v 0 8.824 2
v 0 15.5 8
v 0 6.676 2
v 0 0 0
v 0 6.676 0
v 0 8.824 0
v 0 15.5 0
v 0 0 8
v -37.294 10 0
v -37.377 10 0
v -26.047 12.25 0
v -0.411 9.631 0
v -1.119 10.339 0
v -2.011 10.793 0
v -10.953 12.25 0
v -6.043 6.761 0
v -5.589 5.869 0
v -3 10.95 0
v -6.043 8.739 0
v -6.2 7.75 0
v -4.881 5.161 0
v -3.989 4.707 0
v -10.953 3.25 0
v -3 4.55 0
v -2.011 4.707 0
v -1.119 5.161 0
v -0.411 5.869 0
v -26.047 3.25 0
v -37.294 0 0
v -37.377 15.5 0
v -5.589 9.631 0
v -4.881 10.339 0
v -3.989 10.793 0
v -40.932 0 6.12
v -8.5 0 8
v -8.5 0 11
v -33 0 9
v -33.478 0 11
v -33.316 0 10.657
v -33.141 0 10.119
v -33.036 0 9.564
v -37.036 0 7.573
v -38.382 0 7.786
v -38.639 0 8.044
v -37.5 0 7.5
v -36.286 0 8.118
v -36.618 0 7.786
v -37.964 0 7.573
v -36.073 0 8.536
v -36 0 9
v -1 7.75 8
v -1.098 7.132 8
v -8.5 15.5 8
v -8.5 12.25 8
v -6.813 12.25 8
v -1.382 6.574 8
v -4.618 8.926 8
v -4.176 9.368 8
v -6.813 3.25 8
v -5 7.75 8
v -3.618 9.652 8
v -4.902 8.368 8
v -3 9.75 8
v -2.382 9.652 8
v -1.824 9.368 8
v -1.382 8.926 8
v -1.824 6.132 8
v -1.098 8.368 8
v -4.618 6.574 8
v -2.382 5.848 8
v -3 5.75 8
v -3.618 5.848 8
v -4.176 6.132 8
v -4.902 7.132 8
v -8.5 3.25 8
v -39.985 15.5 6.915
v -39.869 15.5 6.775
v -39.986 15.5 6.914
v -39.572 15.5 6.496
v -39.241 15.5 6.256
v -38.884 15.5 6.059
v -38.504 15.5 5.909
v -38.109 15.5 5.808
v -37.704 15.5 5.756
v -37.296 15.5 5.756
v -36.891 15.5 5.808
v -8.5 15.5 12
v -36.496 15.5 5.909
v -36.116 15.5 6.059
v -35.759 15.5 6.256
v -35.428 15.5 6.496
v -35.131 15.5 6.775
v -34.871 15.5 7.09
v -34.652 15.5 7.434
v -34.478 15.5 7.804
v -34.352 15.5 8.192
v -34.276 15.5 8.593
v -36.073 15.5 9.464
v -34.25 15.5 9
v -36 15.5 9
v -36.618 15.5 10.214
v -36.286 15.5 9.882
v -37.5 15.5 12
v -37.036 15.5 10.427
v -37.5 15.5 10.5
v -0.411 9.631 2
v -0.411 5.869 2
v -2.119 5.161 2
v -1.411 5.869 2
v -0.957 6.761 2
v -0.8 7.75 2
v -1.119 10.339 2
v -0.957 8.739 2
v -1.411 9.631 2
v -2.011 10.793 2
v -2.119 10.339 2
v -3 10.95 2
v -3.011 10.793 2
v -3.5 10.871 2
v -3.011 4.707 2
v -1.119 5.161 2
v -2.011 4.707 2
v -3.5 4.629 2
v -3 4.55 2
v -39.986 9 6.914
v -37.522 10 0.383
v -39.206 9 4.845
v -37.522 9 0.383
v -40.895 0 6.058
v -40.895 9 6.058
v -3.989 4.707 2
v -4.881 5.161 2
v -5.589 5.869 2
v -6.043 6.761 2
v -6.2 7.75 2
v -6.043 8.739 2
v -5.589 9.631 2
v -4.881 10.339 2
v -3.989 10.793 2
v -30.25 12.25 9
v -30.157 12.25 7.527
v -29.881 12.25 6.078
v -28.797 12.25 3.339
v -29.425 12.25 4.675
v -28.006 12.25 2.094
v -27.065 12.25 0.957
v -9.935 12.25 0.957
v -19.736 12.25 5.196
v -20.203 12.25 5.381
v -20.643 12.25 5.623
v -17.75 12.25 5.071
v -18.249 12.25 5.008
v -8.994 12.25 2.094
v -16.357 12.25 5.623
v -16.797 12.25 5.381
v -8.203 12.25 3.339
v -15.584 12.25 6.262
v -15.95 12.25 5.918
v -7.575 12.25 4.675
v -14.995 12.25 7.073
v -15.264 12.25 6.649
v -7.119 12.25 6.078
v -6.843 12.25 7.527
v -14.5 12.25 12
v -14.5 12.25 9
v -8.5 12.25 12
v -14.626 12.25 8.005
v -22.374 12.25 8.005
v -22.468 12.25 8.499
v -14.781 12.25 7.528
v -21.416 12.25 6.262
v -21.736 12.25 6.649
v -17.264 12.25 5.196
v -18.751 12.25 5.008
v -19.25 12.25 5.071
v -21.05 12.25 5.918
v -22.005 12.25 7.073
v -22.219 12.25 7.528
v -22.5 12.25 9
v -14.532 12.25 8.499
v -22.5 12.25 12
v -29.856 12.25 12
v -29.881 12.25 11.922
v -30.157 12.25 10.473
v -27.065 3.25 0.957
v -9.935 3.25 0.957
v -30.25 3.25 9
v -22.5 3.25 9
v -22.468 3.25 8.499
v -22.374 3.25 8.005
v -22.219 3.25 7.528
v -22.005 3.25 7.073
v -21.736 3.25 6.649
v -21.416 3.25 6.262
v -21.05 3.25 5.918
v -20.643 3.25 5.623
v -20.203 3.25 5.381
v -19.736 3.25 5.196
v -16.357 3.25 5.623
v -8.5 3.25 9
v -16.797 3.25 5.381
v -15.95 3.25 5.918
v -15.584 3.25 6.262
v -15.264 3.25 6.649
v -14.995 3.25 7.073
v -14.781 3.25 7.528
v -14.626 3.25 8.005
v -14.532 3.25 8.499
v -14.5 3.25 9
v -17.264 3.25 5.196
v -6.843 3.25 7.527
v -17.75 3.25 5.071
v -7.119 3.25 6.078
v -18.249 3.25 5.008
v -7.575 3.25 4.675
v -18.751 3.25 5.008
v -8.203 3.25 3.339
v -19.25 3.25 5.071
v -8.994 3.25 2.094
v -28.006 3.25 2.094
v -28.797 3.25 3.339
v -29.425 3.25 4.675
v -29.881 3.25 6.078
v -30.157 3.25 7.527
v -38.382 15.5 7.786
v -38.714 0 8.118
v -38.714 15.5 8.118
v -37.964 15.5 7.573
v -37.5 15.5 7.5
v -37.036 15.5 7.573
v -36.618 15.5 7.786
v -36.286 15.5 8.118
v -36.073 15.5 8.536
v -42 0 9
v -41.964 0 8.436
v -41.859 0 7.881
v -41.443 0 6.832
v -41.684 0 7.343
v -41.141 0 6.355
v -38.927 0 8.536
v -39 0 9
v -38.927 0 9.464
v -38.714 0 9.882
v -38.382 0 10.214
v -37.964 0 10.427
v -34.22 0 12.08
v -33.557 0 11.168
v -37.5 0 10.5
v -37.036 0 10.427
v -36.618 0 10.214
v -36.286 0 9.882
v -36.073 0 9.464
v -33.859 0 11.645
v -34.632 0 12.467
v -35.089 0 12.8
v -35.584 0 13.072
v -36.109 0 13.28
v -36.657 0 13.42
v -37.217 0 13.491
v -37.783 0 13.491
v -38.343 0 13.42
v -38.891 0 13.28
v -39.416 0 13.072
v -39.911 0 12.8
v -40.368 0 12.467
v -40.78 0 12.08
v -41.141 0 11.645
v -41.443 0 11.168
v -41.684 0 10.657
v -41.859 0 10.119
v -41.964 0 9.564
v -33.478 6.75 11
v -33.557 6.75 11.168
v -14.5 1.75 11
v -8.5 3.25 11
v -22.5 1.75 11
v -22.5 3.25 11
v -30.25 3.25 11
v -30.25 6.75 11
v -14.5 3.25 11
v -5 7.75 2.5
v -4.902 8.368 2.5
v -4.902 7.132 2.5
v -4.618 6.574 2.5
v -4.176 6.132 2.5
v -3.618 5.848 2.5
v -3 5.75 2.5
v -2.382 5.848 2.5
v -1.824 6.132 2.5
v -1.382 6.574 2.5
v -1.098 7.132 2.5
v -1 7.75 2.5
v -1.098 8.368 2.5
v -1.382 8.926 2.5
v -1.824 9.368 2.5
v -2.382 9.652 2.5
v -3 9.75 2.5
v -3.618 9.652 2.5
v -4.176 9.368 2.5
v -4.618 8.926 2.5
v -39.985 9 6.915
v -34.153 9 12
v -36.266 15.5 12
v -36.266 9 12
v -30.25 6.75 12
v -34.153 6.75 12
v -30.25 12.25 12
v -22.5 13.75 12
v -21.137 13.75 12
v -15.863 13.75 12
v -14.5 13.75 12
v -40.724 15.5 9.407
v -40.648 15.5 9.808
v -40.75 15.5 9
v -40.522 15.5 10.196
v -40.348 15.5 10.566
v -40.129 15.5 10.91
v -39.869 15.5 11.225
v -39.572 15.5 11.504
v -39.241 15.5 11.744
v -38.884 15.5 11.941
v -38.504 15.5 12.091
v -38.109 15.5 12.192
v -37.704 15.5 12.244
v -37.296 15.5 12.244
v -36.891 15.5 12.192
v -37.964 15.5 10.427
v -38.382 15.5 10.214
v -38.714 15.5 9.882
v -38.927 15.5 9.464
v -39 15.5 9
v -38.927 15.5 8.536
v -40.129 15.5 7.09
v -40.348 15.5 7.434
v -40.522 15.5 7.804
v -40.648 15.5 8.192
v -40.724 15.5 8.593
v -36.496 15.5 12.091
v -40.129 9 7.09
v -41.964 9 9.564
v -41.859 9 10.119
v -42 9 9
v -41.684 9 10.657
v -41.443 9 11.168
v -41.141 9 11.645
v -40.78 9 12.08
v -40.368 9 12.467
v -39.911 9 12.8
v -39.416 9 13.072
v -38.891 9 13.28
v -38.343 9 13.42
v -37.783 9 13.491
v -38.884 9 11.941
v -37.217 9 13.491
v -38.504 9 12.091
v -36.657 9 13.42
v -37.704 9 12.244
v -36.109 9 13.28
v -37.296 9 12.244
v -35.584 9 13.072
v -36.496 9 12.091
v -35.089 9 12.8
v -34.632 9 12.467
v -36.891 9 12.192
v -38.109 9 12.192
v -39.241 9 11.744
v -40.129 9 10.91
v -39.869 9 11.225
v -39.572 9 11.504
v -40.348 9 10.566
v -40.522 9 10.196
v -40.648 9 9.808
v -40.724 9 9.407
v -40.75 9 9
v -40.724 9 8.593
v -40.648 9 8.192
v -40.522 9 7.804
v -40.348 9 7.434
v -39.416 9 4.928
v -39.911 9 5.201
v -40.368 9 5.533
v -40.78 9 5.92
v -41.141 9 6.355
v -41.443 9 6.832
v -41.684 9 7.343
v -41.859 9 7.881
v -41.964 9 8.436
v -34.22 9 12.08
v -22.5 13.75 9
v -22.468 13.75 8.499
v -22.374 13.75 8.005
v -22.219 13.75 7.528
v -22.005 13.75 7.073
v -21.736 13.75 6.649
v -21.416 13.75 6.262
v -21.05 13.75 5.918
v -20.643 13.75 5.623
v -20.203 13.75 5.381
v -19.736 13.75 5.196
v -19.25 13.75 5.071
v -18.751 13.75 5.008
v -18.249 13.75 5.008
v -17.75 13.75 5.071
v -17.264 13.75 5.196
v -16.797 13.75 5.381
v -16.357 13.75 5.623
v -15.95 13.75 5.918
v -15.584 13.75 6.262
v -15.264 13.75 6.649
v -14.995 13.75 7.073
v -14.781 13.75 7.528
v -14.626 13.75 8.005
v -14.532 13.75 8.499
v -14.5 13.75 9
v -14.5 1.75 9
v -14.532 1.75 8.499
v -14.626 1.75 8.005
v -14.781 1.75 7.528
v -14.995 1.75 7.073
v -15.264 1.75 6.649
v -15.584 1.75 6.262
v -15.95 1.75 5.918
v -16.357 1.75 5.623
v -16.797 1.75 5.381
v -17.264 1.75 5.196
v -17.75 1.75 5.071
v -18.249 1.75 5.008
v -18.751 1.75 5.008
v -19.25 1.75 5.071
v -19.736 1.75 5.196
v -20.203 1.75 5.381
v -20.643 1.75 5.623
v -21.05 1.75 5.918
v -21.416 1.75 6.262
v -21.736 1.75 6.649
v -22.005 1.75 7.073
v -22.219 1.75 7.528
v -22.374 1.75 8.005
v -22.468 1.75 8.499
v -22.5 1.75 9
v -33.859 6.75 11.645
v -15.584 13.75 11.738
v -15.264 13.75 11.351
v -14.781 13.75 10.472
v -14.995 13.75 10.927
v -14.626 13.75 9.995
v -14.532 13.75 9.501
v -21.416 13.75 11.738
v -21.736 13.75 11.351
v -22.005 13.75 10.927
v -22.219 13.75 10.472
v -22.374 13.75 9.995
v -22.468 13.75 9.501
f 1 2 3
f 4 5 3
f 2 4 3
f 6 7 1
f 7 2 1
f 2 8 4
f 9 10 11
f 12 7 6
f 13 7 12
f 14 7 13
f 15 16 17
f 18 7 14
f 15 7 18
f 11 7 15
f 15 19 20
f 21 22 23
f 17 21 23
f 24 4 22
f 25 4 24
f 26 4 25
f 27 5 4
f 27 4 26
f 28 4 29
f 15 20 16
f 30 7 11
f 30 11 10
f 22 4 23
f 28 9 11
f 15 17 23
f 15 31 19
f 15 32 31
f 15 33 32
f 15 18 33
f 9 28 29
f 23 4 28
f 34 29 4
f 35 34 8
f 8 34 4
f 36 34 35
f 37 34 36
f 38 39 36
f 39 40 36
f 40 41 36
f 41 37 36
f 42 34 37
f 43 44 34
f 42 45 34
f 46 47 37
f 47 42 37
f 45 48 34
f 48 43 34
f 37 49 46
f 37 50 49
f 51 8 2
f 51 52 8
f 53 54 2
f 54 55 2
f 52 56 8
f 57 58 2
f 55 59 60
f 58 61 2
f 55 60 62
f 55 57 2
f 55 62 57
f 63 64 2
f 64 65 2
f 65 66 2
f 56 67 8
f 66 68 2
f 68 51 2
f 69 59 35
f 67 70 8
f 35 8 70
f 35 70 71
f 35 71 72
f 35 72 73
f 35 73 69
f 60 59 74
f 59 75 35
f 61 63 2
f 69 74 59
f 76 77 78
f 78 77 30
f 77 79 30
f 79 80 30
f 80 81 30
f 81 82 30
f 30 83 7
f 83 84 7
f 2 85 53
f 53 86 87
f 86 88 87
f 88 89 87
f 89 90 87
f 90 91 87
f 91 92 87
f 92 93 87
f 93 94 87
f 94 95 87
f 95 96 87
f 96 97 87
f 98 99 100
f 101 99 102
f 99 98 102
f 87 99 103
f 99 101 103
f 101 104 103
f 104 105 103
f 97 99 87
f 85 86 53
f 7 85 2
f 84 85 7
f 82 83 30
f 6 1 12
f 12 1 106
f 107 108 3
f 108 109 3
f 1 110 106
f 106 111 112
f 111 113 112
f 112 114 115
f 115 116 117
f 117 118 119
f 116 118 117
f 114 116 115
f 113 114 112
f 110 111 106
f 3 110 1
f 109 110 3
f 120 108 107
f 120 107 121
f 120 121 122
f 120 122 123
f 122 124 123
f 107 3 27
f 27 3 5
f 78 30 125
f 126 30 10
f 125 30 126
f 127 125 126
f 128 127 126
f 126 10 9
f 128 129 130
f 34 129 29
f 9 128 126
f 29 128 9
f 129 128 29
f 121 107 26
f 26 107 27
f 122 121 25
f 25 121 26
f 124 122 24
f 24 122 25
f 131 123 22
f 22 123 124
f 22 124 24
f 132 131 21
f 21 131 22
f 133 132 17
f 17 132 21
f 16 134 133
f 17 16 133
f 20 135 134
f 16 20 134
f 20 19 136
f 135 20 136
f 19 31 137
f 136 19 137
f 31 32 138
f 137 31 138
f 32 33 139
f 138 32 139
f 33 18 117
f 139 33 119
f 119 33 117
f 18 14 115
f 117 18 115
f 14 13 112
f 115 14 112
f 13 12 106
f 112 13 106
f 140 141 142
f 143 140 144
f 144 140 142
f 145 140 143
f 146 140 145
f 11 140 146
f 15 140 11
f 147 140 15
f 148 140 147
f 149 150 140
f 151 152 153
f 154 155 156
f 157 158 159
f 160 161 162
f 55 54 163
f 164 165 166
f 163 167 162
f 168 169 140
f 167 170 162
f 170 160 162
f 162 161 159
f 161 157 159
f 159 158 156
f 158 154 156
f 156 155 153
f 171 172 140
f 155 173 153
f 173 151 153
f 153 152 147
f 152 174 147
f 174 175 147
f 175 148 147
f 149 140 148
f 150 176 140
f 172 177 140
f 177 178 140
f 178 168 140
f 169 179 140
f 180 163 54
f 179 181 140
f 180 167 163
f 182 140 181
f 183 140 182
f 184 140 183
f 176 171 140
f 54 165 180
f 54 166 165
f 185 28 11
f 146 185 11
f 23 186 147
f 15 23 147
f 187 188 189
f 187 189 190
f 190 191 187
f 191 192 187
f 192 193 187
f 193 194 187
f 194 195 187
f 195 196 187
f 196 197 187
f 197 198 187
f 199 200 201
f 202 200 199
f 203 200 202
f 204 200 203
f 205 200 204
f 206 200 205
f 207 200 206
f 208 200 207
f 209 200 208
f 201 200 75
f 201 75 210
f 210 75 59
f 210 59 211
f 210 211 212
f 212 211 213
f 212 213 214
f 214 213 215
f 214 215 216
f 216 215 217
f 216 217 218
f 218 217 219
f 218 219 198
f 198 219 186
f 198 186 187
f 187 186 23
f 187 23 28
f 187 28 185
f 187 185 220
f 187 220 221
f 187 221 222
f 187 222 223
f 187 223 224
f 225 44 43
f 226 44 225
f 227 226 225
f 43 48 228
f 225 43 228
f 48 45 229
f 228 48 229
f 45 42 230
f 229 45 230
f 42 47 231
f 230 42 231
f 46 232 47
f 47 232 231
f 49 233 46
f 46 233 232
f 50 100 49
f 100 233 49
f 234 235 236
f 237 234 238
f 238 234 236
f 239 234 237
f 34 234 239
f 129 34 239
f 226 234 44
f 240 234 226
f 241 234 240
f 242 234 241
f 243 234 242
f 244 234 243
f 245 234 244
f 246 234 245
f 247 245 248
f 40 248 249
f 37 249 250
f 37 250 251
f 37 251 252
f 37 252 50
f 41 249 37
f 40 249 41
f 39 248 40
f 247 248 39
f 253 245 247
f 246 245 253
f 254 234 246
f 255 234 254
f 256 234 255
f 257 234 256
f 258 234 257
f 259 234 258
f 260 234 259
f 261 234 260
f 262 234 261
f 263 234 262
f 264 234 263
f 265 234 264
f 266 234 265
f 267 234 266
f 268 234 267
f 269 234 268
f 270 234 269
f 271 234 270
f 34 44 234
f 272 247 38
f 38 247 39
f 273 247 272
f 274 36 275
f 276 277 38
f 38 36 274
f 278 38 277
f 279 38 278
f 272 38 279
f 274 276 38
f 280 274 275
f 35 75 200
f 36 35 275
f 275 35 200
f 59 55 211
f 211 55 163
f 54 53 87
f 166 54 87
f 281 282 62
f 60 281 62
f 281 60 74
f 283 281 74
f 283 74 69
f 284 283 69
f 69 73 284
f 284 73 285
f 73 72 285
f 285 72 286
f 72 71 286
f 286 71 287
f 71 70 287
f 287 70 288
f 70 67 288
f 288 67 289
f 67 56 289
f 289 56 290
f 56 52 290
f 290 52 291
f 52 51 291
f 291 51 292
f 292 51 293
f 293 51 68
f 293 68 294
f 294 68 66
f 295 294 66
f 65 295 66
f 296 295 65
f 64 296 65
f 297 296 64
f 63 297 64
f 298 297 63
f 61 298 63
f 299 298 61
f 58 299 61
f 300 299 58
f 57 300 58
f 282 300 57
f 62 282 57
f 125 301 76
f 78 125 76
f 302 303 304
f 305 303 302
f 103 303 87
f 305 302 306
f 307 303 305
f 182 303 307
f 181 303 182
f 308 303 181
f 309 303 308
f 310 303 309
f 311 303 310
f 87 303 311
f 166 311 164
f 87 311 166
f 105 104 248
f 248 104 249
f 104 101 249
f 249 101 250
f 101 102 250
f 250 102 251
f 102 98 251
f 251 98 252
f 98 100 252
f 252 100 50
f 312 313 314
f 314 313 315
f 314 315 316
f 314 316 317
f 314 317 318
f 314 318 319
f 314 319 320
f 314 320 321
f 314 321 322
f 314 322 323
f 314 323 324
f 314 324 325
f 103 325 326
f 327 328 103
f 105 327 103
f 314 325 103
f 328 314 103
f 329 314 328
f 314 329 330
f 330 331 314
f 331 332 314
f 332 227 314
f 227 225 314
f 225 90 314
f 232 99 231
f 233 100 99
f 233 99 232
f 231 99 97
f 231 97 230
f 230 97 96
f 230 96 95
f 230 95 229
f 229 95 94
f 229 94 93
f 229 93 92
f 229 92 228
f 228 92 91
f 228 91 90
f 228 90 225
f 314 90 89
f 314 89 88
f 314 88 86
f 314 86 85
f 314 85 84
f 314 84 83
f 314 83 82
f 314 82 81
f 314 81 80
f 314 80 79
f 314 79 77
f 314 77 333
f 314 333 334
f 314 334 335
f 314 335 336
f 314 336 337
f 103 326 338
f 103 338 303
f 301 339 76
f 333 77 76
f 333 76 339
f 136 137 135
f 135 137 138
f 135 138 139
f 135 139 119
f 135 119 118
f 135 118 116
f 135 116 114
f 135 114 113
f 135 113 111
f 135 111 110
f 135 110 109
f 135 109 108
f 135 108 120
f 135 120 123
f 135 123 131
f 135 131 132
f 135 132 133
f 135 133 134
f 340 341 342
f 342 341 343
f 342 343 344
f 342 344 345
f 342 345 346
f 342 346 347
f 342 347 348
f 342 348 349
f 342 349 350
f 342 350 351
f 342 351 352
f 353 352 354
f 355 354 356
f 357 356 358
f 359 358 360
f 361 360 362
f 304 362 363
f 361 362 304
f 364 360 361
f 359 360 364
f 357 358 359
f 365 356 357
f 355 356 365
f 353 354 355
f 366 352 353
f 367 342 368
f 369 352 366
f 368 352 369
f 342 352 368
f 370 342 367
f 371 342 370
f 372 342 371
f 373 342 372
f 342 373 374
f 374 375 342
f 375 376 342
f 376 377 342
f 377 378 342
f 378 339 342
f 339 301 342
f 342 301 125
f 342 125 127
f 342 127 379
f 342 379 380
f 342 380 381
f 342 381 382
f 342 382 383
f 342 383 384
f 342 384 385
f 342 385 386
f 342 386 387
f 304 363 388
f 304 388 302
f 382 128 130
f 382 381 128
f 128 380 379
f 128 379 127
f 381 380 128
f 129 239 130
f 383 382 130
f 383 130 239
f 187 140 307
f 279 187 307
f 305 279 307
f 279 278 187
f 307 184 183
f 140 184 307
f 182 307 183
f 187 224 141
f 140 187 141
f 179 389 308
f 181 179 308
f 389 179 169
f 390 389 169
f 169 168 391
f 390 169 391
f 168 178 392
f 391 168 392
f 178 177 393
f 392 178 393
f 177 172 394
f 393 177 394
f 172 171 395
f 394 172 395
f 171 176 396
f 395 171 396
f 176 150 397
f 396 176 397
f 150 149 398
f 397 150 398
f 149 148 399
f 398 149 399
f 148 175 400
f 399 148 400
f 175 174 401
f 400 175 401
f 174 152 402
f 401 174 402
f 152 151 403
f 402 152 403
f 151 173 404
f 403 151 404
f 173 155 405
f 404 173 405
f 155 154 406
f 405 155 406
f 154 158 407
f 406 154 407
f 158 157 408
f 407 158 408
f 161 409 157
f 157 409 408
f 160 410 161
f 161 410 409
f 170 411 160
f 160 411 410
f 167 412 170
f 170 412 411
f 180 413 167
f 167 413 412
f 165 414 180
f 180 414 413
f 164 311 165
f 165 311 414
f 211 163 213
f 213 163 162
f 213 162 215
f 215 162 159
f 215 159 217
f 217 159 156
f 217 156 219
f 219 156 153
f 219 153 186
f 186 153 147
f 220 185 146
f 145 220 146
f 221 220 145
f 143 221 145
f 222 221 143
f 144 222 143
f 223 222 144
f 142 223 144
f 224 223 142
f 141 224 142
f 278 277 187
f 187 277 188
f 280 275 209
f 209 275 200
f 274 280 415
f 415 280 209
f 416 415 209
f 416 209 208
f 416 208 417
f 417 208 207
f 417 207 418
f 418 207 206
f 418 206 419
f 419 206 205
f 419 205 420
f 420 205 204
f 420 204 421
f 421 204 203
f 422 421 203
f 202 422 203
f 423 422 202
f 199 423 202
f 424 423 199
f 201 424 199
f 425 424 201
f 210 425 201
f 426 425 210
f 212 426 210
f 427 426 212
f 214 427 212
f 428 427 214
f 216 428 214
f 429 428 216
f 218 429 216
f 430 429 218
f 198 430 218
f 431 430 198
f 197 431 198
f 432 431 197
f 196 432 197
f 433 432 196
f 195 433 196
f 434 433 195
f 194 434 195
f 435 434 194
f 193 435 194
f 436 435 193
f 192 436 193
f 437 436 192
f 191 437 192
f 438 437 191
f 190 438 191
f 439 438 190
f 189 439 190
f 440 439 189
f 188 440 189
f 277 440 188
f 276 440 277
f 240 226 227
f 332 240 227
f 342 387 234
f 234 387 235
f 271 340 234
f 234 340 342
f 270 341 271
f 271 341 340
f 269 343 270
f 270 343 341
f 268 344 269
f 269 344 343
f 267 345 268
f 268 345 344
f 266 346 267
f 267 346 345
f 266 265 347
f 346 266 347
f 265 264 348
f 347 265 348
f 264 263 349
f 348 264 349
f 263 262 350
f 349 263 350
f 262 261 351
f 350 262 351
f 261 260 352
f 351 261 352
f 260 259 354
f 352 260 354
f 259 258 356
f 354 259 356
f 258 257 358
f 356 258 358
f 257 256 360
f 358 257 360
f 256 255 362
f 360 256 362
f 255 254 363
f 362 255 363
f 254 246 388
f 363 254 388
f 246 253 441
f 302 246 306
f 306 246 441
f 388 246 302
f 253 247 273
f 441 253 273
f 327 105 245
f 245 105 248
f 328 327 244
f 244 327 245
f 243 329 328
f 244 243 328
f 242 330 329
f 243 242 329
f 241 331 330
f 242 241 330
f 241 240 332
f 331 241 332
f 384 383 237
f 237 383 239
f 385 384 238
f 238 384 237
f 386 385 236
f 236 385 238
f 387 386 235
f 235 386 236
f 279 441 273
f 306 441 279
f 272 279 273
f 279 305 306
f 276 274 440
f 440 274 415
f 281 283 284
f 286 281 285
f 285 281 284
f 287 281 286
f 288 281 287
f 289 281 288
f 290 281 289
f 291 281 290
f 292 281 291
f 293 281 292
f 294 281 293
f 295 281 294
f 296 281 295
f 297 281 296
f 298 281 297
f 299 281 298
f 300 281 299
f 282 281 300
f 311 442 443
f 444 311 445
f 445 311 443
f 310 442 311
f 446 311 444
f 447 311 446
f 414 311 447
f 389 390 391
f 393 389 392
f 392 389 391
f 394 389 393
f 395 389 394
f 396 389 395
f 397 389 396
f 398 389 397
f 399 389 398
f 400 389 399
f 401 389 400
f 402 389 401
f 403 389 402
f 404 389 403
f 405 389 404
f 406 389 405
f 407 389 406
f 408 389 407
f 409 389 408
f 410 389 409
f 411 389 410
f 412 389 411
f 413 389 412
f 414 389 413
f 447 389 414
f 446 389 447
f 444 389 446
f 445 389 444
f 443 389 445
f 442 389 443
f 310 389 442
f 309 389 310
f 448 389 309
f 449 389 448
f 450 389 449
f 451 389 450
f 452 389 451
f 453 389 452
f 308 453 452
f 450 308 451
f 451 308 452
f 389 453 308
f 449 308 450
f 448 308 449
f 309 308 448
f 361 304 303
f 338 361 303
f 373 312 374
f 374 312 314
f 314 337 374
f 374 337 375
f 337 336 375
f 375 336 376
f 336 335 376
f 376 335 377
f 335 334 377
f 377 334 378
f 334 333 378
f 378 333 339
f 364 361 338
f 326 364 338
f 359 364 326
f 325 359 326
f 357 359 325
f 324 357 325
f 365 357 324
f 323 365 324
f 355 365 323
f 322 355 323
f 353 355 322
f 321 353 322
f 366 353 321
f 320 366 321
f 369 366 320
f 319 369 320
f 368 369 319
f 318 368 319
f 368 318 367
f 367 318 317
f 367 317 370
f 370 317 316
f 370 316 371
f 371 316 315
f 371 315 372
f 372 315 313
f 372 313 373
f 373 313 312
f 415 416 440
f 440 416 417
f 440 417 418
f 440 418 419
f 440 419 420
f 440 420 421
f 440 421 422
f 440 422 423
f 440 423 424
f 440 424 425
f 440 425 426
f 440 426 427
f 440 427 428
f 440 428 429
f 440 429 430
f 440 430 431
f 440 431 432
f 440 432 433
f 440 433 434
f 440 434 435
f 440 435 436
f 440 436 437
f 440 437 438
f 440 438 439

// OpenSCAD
module halfcube(a,orient,center) {
	translate(center==true?-a/2:0) {
		if (orient=="x")
			polyhedron (points = [[a[0],0,a[2]], [0,0,a[2]], [0,a[1],0], [0,0,0], [a[0],0,0], [a[0],a[1],0]], faces = [[1,3,2], [4,0,5], [3,1,4], [1,2,5], [1,0,4], [0,1,5],  [5,2,4], [4,2,3]]);
		if (orient=="y")
			polyhedron (points = [[0,a[1],a[2]], [0,0,a[2]], [0,a[1],0], [0,0,0], [a[0],0,0], [a[0],a[1],0]], faces = [[1,3,2], [1,2,0], [3,1,4], [0,2,5], [1,5,4], [1,0,5],  [5,2,4], [4,2,3]]);
		if (orient=="z")
			polyhedron (points = [[0,a[1],a[2]], [0,0,a[2]], [0,a[1],0], [0,0,0], [a[0],0,0], [a[0],0,a[2]]], faces = [[1,3,2], [1,2,0], [3,1,4], [0,2,5], [1,5,4], [1,0,5],  [5,2,4], [4,2,3]]);
	}
}
//include <halfcube.scad>
x=42; // width
y=15.5; // depth
z=12; // height
z0=z-2-1;

d1=23.5;
d2=8;
d3=4;
d4=9;
d5=3;
x1=18.5;
h1=9;
h2=12;
z1=z-3;

d6=6.5;
hh=6.5;
d7=6.4;
// freecad positioning
//translate([18.5,8,60.5])rotate([180,90,0])
mirror([1,0,0])
union(){
	translate([4,y/2,2])cylinder(0.5,r=d7/2,$fn=20);
difference(){
	// main part
	cube([x,y,z]);
	translate([0,-1,z-1])cube([x,y/2,z]);
	translate([x-4.5,-1,z1])cube([d4,y+2,d4]);
	translate([x-4.5,-1,z1])rotate([0,40,0])cube([d4,y+2,d4]);

	// bearing
#	translate([x1,y/2+h1/2,z0])rotate([90,0,0])cylinder(h1,r=d1/2,$fn=50);
	translate([x1,y/2,d1/2+z0])cube([d1,h1,d1],true);
	translate([x1,y/2+h2/2,z0])rotate([90,0,0])cylinder(h2,r=d2/2,$fn=50);
	translate([x1,y/2,d2/2+z0])cube([d2,h2,d2],true);

	// top slot
	translate([-1,-1,z-4])cube([x1-9,y+2,5]);
	translate([3,y/2,-1])cylinder(z+2,r=d3/2,$fn=20);
	translate([3,y/2,-1])cylinder(3,r=d7/2,$fn=20);

	// bottom round cut
	translate([x-4.5,-1,z1])rotate([-90,0,0])cylinder(y+2,r=d5/2,$fn=20);
	translate([x+1,-1,-1])rotate([0,-90,0])halfcube([7.6+3,y+2-hh,6.3],"y");

	translate([x-4.5,-1,z1])rotate([0,40,0])cube([d4,y+2,d4]);
	translate([x+1,y-hh,-1])rotate([0,-90,0])halfcube([11.9+4,hh+1,6],"y");
}

// bottom round thing
difference(){
	union(){
		translate([x-4.5,0,z1])rotate([-90,0,0])cylinder(y-hh,r=d4/2,$fn=50);
		translate([x-4.5,0,z1])rotate([-90,0,0])cylinder(y,r=d6/2,$fn=50);
	}
	translate([x-4.5,-1,z1])rotate([-90,0,0])cylinder(y+2,r=d5/2,$fn=20);
}
}
